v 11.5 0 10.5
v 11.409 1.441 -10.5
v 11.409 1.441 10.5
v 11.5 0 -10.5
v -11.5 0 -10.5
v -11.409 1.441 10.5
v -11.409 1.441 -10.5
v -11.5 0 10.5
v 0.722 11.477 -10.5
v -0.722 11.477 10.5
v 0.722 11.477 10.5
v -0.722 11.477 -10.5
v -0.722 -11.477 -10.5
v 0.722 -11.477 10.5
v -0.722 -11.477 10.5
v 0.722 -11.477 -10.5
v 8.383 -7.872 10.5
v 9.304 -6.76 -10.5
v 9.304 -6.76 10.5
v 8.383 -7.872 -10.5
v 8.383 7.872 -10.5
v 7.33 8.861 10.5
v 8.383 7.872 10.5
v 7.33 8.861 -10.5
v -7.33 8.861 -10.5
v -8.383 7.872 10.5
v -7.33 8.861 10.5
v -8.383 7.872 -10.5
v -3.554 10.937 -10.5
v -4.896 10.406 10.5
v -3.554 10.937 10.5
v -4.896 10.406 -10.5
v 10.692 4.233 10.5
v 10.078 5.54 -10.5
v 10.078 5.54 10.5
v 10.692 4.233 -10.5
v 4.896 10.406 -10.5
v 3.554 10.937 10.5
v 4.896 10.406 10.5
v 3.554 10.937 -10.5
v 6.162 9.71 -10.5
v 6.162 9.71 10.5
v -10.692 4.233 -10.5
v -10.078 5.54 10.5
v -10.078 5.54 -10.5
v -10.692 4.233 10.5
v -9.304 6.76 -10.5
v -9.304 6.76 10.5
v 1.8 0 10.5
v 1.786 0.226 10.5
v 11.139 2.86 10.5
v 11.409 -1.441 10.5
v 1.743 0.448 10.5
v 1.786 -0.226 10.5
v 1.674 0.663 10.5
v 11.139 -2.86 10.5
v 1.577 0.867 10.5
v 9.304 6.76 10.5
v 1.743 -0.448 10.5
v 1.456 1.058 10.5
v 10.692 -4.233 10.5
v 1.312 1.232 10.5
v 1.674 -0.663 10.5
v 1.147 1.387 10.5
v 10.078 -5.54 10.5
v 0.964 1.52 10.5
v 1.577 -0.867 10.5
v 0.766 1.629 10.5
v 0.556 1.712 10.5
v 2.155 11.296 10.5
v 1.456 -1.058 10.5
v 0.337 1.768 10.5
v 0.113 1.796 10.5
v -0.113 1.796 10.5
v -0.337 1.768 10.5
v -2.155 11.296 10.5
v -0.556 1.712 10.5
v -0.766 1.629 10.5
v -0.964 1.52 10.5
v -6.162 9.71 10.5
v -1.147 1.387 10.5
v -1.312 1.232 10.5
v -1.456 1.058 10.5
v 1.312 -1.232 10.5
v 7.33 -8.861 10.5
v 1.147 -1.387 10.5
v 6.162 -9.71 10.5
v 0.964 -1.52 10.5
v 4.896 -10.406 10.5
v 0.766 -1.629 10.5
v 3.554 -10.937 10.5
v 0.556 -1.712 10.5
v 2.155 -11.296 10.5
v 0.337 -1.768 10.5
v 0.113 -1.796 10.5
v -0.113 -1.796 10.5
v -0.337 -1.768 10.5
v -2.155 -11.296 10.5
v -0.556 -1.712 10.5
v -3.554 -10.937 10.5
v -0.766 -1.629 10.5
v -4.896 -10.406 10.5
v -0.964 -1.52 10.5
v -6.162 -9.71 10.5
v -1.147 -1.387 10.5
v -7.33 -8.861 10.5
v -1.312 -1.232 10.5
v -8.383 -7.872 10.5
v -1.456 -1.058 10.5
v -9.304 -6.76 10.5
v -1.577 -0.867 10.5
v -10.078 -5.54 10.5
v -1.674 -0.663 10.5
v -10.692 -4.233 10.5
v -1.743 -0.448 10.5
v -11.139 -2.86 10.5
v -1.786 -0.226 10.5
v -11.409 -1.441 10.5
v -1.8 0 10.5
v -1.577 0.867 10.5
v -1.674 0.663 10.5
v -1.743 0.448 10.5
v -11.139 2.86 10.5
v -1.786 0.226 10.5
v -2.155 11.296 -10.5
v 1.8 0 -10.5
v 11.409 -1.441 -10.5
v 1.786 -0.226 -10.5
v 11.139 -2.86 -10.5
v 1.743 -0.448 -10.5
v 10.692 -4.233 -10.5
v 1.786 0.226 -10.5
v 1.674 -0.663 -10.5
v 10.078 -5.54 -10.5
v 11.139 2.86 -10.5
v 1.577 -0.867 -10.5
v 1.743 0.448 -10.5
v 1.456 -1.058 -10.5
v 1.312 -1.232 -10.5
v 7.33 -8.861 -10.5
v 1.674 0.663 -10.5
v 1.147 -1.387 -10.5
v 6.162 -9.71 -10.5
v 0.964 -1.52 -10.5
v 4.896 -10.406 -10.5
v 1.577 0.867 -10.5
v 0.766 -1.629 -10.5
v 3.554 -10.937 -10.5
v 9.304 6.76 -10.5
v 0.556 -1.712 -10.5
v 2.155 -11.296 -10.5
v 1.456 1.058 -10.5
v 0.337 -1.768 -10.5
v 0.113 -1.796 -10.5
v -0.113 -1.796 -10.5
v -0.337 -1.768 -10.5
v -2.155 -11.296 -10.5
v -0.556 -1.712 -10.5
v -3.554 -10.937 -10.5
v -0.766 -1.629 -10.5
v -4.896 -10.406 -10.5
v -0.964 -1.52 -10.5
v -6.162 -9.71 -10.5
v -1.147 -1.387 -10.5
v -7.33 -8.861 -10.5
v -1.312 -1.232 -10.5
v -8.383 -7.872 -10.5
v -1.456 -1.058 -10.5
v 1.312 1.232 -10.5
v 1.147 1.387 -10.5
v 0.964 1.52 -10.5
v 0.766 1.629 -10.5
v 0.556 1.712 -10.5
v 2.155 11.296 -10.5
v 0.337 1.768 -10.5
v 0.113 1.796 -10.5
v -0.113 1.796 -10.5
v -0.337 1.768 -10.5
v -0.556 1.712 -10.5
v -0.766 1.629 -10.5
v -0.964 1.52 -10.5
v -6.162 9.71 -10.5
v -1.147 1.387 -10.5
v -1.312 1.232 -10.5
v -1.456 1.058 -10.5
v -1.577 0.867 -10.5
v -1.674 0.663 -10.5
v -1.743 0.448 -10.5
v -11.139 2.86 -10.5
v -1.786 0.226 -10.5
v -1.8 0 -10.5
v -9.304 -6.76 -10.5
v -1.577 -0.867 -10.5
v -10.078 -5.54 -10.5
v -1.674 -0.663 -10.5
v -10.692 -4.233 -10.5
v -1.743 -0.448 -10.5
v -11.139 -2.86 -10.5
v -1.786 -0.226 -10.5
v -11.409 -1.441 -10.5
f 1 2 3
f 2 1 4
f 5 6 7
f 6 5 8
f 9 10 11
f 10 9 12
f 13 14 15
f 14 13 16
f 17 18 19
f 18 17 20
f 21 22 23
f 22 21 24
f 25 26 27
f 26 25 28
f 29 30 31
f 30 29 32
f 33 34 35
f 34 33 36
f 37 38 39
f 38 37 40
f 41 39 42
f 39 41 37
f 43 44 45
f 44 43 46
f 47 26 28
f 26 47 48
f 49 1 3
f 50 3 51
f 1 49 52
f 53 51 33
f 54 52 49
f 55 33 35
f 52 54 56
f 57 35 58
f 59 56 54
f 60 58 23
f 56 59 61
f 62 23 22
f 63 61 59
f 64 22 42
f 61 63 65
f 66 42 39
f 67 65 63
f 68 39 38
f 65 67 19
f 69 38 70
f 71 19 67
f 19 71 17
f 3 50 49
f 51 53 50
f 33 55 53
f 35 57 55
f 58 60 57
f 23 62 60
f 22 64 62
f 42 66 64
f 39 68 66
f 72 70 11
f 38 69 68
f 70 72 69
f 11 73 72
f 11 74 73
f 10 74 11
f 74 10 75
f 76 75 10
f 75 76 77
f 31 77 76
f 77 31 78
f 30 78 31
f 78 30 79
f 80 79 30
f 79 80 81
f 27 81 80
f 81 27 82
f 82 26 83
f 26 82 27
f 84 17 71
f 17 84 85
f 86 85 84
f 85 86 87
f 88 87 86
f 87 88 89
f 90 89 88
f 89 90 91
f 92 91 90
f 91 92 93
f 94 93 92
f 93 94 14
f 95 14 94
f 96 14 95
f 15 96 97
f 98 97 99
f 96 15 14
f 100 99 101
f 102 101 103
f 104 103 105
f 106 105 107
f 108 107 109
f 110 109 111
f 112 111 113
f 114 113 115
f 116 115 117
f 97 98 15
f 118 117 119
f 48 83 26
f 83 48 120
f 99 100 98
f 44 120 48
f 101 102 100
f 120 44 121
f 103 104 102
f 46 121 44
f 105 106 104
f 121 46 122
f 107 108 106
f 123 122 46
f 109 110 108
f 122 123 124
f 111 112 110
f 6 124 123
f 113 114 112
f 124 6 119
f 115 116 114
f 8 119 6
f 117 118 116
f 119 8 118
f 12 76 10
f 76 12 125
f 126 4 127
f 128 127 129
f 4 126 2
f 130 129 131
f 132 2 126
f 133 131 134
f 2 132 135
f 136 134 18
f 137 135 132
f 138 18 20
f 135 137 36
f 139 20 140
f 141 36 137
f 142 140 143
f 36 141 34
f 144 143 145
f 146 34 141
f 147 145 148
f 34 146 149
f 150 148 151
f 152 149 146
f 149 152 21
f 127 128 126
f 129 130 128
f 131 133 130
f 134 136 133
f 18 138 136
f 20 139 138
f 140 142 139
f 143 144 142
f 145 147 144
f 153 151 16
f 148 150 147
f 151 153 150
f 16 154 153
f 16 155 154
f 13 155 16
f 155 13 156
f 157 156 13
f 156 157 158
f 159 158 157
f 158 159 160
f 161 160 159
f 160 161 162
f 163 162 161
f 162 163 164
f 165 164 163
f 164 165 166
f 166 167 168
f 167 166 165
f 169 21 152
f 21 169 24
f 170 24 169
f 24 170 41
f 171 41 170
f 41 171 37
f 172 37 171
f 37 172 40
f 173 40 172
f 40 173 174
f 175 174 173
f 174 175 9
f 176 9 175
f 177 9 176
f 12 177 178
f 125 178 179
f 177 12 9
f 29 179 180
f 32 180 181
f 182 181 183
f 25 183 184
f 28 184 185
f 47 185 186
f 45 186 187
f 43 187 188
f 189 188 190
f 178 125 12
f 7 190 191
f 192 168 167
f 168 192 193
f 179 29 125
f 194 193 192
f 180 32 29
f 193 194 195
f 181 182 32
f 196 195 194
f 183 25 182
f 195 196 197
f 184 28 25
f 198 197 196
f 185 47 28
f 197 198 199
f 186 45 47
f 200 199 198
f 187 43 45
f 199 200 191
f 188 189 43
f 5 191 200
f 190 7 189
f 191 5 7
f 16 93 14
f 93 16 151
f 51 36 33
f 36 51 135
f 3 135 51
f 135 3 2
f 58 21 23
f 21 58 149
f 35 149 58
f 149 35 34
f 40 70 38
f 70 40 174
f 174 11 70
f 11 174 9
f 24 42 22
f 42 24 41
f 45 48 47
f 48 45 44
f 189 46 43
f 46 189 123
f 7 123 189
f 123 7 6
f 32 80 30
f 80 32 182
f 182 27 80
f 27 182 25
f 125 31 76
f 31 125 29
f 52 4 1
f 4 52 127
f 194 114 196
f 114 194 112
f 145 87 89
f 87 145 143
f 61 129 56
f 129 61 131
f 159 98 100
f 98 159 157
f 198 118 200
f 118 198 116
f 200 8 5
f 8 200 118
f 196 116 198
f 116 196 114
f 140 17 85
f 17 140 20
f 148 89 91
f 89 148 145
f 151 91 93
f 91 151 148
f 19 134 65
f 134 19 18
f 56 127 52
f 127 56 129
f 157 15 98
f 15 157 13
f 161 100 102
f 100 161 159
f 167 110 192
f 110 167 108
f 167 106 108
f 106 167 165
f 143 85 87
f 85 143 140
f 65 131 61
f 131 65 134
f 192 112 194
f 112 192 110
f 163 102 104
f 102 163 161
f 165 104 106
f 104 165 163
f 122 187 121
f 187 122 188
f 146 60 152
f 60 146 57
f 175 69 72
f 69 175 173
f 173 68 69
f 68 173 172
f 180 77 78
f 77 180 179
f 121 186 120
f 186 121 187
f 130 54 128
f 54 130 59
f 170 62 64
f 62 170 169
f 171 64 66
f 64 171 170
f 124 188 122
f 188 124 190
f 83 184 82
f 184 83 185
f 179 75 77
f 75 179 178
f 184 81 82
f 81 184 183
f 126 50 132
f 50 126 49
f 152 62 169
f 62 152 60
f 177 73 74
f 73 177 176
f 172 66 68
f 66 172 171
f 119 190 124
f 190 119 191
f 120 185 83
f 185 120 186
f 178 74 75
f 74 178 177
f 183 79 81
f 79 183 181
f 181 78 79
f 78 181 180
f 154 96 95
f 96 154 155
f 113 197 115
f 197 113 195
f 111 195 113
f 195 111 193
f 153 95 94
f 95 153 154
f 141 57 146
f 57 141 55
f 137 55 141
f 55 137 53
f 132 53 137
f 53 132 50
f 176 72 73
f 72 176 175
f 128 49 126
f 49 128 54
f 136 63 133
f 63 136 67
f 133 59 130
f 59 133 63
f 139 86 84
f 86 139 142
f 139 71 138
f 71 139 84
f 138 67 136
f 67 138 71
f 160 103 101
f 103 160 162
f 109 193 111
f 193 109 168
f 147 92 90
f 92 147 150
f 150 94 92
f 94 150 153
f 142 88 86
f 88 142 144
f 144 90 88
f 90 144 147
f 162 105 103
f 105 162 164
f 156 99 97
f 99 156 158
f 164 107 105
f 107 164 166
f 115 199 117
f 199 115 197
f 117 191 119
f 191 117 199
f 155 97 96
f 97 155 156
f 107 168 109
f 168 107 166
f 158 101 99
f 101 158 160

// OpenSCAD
$fn = 50;


difference() {
	union() {
		translate(v = [0, 0, -10.5000000000]) {
			cylinder(h = 21, r = 11.5000000000);
		}
	}
	union() {
		translate(v = [0, 0, -100.0000000000]) {
			cylinder(h = 200, r = 1.8000000000);
		}
	}
}
